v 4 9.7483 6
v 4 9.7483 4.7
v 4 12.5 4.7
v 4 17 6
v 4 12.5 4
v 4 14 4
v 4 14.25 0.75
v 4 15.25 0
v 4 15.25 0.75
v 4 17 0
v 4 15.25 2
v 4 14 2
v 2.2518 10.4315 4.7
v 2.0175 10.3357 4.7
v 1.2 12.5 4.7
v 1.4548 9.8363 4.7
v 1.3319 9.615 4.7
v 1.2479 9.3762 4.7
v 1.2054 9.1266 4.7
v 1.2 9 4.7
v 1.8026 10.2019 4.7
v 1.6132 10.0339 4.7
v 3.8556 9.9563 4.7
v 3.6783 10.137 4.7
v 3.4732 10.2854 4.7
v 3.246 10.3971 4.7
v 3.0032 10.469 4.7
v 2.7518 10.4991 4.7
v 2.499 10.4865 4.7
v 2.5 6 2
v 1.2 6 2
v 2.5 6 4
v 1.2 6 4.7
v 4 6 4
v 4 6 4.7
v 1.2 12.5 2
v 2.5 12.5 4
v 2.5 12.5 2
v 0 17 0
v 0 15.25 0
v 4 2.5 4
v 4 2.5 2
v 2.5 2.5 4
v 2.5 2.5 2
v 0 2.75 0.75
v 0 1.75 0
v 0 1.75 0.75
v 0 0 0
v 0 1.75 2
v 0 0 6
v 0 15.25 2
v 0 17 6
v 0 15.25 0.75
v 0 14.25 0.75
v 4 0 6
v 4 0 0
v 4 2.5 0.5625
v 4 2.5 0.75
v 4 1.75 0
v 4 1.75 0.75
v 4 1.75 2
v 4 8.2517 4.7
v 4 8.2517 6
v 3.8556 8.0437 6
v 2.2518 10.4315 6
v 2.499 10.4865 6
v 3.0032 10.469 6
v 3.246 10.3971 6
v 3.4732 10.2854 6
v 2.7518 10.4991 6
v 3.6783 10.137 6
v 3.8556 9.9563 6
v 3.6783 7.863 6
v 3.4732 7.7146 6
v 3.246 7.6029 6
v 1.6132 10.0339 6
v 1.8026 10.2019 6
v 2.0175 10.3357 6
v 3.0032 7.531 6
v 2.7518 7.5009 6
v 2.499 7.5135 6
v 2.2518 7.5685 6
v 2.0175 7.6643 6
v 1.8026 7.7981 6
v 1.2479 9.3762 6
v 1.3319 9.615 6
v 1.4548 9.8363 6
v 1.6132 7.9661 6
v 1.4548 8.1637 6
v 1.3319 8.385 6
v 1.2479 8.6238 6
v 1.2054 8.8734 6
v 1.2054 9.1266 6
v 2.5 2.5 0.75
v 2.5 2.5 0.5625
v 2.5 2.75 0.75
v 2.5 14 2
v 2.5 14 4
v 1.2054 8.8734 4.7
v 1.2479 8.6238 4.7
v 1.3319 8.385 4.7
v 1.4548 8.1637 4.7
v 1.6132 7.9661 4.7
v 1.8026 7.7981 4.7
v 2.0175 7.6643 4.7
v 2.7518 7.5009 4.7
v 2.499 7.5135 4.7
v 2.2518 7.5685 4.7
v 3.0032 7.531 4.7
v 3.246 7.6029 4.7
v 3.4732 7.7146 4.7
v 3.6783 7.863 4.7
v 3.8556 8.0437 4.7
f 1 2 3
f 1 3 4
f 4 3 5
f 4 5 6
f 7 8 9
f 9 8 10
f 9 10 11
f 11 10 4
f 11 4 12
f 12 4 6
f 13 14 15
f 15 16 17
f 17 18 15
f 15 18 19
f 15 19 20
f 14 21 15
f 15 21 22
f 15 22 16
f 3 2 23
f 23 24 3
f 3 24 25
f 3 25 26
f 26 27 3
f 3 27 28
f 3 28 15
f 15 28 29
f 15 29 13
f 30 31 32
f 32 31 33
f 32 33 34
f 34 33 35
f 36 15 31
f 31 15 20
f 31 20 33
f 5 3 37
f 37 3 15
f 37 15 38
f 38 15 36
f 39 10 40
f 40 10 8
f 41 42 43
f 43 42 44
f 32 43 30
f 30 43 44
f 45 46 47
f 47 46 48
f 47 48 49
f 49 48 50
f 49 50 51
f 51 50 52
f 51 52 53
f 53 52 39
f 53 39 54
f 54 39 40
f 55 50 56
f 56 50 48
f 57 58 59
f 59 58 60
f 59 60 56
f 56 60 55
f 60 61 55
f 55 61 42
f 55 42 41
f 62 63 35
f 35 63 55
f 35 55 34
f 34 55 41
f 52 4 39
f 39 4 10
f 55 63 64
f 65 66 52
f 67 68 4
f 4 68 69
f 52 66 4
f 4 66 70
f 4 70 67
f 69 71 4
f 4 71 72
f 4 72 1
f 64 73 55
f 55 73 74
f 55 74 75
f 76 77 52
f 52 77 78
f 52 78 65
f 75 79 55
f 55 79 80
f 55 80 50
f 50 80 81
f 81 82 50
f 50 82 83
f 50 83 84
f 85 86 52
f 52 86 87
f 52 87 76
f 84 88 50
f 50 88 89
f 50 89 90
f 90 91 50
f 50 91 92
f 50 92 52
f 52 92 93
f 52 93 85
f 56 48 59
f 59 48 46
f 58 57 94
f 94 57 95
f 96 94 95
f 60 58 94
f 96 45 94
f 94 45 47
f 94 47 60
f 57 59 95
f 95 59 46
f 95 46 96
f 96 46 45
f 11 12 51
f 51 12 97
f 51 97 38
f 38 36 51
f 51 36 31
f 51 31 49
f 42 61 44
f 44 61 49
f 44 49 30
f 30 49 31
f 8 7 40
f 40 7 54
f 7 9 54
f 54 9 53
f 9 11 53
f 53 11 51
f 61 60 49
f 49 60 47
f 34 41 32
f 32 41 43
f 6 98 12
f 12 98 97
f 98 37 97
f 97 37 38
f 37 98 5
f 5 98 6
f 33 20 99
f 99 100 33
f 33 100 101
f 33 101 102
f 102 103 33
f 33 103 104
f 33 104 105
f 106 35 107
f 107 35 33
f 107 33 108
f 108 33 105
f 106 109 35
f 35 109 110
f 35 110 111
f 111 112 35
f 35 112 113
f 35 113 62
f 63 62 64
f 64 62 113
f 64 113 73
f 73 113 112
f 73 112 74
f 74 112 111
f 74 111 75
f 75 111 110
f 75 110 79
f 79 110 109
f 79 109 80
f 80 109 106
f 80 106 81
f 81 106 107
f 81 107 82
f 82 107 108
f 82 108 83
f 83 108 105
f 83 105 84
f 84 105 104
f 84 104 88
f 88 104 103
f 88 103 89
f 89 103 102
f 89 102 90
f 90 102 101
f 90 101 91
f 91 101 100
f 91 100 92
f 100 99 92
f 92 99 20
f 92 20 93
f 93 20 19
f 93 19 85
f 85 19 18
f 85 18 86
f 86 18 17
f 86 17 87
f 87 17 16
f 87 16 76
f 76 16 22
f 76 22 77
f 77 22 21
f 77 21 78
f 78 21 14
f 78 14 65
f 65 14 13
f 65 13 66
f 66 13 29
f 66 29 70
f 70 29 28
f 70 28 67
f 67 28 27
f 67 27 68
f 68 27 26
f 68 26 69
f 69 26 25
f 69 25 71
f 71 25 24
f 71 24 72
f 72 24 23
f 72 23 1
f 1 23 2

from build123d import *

# Parameters (mm, degrees)
SKETCH1_W           = 4
SKETCH1_H           = 17
BOSS_EXTRUDE1_DEPTH = 6
SKETCH2_W           = 2.8
SKETCH2_H           = 6.5
SKETCH2_W_2         = 1.5
SKETCH2_H_2         = 2.75
CUT_EXTRUDE1_DEPTH  = 19.466185313
CUT_EXTRUDE2_DEPTH  = 19.466185313
SKETCH4_W           = 2
SKETCH4_H           = 2.75
BOSS_EXTRUDE2_DEPTH = 2
SKETCH6_W           = 1.5
SKETCH6_H           = 1.5
SKETCH6_H_2         = 0.75
CUT_EXTRUDE3_DEPTH  = 2
SKETCH7_W           = 1.3
SKETCH7_H           = 6.5
BOSS_EXTRUDE3_DEPTH = 2.8
SKETCH8_R           = 1.5
CUT_EXTRUDE4_DEPTH  = 10


with BuildPart() as part:
    # Sketch1 → Boss-Extrude1 (new body)
    with BuildSketch(Plane.XY):
        with Locations((2, 8.5)):
            Rectangle(SKETCH1_W, SKETCH1_H)
    extrude(amount=BOSS_EXTRUDE1_DEPTH)

    # Sketch2 → Cut-Extrude1 (cut, through all)
    with BuildSketch(Plane.XY.offset(6)):
        with Locations((2.6, 9.25)):
            Rectangle(SKETCH2_W, SKETCH2_H)
        with Locations((3.25, 3.875)):
            Rectangle(SKETCH2_W_2, SKETCH2_H_2)
    extrude(amount=-CUT_EXTRUDE1_DEPTH, mode=Mode.SUBTRACT)

    # Sketch3 → Cut-Extrude2 (cut, through all)
    with BuildSketch(Plane.ZY):
        Polygon((0, 15.25), (0.75, 14.25), (0.75, 15.25), (2, 15.25), (2, 1.75), (0.75, 1.75), (0.75, 2.75), (0, 1.75), align=None)
    extrude(amount=-CUT_EXTRUDE2_DEPTH, mode=Mode.SUBTRACT)

    # Sketch4 → Boss-Extrude2 (add)
    with BuildSketch(Plane(origin=(4, 0, 0), x_dir=(0, 0, -1), z_dir=(1, 0, 0))):
        with Locations((-5, 3.875)):
            Rectangle(SKETCH4_W, SKETCH4_H)
    extrude(amount=-BOSS_EXTRUDE2_DEPTH)

    # Sketch6 → Cut-Extrude3 (cut)
    with BuildSketch(Plane(origin=(0, 0, 2), x_dir=(-1, 0, 0), z_dir=(0, 0, -1))):
        with Locations((-3.25, 13.25)):
            Rectangle(SKETCH6_W, SKETCH6_H)
        with Locations((-3.25, 5.625)):
            Rectangle(SKETCH6_W, SKETCH6_H_2)
    extrude(amount=-CUT_EXTRUDE3_DEPTH, mode=Mode.SUBTRACT)

    # Sketch7 → Boss-Extrude3 (add)
    with BuildSketch(Plane(origin=(1.2, 0, 0), x_dir=(0, 0, -1), z_dir=(1, 0, 0))):
        with Locations((-5.35, 9.25)):
            Rectangle(SKETCH7_W, SKETCH7_H)
    extrude(amount=BOSS_EXTRUDE3_DEPTH)

    # Sketch8 → Cut-Extrude4 (cut)
    with BuildSketch(Plane(origin=(0, 0, 4.7), x_dir=(-1, 0, 0), z_dir=(0, 0, -1))):
        with Locations((-2.7, 9)):
            Circle(SKETCH8_R)
    extrude(amount=-CUT_EXTRUDE4_DEPTH, mode=Mode.SUBTRACT)


solid = part.part
